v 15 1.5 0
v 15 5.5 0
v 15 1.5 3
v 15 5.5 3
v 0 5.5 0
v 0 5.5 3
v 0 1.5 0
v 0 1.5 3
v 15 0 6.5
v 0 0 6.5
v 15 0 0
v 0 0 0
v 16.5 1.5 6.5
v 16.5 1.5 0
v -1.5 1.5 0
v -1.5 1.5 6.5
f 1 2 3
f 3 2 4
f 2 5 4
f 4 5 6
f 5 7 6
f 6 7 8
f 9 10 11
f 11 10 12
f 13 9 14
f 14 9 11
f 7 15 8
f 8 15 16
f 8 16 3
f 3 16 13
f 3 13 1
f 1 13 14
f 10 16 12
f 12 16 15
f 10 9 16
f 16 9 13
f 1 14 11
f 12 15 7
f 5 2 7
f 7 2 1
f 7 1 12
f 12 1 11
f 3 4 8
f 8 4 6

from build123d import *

# Parameters (mm, degrees)
BOSS_EXTRUDE1_DEPTH = 6.5
SKETCH2_W           = 15
SKETCH2_H           = 4
CUT_EXTRUDE1_DEPTH  = 3.5


with BuildPart() as part:
    # Sketch1 → Boss-Extrude1 (new body)
    with BuildSketch(Plane.XY):
        Polygon((0, 0), (-1.5, 1.5), (0, 1.5), (0, 5.5), (15, 5.5), (15, 1.5), (16.5, 1.5), (15, 0), align=None)
    extrude(amount=BOSS_EXTRUDE1_DEPTH)

    # Sketch2 → Cut-Extrude1 (cut)
    with BuildSketch(Plane.XY.offset(6.5)):
        with Locations((7.5, 3.5)):
            Rectangle(SKETCH2_W, SKETCH2_H)
    extrude(amount=-CUT_EXTRUDE1_DEPTH, mode=Mode.SUBTRACT)


solid = part.part
